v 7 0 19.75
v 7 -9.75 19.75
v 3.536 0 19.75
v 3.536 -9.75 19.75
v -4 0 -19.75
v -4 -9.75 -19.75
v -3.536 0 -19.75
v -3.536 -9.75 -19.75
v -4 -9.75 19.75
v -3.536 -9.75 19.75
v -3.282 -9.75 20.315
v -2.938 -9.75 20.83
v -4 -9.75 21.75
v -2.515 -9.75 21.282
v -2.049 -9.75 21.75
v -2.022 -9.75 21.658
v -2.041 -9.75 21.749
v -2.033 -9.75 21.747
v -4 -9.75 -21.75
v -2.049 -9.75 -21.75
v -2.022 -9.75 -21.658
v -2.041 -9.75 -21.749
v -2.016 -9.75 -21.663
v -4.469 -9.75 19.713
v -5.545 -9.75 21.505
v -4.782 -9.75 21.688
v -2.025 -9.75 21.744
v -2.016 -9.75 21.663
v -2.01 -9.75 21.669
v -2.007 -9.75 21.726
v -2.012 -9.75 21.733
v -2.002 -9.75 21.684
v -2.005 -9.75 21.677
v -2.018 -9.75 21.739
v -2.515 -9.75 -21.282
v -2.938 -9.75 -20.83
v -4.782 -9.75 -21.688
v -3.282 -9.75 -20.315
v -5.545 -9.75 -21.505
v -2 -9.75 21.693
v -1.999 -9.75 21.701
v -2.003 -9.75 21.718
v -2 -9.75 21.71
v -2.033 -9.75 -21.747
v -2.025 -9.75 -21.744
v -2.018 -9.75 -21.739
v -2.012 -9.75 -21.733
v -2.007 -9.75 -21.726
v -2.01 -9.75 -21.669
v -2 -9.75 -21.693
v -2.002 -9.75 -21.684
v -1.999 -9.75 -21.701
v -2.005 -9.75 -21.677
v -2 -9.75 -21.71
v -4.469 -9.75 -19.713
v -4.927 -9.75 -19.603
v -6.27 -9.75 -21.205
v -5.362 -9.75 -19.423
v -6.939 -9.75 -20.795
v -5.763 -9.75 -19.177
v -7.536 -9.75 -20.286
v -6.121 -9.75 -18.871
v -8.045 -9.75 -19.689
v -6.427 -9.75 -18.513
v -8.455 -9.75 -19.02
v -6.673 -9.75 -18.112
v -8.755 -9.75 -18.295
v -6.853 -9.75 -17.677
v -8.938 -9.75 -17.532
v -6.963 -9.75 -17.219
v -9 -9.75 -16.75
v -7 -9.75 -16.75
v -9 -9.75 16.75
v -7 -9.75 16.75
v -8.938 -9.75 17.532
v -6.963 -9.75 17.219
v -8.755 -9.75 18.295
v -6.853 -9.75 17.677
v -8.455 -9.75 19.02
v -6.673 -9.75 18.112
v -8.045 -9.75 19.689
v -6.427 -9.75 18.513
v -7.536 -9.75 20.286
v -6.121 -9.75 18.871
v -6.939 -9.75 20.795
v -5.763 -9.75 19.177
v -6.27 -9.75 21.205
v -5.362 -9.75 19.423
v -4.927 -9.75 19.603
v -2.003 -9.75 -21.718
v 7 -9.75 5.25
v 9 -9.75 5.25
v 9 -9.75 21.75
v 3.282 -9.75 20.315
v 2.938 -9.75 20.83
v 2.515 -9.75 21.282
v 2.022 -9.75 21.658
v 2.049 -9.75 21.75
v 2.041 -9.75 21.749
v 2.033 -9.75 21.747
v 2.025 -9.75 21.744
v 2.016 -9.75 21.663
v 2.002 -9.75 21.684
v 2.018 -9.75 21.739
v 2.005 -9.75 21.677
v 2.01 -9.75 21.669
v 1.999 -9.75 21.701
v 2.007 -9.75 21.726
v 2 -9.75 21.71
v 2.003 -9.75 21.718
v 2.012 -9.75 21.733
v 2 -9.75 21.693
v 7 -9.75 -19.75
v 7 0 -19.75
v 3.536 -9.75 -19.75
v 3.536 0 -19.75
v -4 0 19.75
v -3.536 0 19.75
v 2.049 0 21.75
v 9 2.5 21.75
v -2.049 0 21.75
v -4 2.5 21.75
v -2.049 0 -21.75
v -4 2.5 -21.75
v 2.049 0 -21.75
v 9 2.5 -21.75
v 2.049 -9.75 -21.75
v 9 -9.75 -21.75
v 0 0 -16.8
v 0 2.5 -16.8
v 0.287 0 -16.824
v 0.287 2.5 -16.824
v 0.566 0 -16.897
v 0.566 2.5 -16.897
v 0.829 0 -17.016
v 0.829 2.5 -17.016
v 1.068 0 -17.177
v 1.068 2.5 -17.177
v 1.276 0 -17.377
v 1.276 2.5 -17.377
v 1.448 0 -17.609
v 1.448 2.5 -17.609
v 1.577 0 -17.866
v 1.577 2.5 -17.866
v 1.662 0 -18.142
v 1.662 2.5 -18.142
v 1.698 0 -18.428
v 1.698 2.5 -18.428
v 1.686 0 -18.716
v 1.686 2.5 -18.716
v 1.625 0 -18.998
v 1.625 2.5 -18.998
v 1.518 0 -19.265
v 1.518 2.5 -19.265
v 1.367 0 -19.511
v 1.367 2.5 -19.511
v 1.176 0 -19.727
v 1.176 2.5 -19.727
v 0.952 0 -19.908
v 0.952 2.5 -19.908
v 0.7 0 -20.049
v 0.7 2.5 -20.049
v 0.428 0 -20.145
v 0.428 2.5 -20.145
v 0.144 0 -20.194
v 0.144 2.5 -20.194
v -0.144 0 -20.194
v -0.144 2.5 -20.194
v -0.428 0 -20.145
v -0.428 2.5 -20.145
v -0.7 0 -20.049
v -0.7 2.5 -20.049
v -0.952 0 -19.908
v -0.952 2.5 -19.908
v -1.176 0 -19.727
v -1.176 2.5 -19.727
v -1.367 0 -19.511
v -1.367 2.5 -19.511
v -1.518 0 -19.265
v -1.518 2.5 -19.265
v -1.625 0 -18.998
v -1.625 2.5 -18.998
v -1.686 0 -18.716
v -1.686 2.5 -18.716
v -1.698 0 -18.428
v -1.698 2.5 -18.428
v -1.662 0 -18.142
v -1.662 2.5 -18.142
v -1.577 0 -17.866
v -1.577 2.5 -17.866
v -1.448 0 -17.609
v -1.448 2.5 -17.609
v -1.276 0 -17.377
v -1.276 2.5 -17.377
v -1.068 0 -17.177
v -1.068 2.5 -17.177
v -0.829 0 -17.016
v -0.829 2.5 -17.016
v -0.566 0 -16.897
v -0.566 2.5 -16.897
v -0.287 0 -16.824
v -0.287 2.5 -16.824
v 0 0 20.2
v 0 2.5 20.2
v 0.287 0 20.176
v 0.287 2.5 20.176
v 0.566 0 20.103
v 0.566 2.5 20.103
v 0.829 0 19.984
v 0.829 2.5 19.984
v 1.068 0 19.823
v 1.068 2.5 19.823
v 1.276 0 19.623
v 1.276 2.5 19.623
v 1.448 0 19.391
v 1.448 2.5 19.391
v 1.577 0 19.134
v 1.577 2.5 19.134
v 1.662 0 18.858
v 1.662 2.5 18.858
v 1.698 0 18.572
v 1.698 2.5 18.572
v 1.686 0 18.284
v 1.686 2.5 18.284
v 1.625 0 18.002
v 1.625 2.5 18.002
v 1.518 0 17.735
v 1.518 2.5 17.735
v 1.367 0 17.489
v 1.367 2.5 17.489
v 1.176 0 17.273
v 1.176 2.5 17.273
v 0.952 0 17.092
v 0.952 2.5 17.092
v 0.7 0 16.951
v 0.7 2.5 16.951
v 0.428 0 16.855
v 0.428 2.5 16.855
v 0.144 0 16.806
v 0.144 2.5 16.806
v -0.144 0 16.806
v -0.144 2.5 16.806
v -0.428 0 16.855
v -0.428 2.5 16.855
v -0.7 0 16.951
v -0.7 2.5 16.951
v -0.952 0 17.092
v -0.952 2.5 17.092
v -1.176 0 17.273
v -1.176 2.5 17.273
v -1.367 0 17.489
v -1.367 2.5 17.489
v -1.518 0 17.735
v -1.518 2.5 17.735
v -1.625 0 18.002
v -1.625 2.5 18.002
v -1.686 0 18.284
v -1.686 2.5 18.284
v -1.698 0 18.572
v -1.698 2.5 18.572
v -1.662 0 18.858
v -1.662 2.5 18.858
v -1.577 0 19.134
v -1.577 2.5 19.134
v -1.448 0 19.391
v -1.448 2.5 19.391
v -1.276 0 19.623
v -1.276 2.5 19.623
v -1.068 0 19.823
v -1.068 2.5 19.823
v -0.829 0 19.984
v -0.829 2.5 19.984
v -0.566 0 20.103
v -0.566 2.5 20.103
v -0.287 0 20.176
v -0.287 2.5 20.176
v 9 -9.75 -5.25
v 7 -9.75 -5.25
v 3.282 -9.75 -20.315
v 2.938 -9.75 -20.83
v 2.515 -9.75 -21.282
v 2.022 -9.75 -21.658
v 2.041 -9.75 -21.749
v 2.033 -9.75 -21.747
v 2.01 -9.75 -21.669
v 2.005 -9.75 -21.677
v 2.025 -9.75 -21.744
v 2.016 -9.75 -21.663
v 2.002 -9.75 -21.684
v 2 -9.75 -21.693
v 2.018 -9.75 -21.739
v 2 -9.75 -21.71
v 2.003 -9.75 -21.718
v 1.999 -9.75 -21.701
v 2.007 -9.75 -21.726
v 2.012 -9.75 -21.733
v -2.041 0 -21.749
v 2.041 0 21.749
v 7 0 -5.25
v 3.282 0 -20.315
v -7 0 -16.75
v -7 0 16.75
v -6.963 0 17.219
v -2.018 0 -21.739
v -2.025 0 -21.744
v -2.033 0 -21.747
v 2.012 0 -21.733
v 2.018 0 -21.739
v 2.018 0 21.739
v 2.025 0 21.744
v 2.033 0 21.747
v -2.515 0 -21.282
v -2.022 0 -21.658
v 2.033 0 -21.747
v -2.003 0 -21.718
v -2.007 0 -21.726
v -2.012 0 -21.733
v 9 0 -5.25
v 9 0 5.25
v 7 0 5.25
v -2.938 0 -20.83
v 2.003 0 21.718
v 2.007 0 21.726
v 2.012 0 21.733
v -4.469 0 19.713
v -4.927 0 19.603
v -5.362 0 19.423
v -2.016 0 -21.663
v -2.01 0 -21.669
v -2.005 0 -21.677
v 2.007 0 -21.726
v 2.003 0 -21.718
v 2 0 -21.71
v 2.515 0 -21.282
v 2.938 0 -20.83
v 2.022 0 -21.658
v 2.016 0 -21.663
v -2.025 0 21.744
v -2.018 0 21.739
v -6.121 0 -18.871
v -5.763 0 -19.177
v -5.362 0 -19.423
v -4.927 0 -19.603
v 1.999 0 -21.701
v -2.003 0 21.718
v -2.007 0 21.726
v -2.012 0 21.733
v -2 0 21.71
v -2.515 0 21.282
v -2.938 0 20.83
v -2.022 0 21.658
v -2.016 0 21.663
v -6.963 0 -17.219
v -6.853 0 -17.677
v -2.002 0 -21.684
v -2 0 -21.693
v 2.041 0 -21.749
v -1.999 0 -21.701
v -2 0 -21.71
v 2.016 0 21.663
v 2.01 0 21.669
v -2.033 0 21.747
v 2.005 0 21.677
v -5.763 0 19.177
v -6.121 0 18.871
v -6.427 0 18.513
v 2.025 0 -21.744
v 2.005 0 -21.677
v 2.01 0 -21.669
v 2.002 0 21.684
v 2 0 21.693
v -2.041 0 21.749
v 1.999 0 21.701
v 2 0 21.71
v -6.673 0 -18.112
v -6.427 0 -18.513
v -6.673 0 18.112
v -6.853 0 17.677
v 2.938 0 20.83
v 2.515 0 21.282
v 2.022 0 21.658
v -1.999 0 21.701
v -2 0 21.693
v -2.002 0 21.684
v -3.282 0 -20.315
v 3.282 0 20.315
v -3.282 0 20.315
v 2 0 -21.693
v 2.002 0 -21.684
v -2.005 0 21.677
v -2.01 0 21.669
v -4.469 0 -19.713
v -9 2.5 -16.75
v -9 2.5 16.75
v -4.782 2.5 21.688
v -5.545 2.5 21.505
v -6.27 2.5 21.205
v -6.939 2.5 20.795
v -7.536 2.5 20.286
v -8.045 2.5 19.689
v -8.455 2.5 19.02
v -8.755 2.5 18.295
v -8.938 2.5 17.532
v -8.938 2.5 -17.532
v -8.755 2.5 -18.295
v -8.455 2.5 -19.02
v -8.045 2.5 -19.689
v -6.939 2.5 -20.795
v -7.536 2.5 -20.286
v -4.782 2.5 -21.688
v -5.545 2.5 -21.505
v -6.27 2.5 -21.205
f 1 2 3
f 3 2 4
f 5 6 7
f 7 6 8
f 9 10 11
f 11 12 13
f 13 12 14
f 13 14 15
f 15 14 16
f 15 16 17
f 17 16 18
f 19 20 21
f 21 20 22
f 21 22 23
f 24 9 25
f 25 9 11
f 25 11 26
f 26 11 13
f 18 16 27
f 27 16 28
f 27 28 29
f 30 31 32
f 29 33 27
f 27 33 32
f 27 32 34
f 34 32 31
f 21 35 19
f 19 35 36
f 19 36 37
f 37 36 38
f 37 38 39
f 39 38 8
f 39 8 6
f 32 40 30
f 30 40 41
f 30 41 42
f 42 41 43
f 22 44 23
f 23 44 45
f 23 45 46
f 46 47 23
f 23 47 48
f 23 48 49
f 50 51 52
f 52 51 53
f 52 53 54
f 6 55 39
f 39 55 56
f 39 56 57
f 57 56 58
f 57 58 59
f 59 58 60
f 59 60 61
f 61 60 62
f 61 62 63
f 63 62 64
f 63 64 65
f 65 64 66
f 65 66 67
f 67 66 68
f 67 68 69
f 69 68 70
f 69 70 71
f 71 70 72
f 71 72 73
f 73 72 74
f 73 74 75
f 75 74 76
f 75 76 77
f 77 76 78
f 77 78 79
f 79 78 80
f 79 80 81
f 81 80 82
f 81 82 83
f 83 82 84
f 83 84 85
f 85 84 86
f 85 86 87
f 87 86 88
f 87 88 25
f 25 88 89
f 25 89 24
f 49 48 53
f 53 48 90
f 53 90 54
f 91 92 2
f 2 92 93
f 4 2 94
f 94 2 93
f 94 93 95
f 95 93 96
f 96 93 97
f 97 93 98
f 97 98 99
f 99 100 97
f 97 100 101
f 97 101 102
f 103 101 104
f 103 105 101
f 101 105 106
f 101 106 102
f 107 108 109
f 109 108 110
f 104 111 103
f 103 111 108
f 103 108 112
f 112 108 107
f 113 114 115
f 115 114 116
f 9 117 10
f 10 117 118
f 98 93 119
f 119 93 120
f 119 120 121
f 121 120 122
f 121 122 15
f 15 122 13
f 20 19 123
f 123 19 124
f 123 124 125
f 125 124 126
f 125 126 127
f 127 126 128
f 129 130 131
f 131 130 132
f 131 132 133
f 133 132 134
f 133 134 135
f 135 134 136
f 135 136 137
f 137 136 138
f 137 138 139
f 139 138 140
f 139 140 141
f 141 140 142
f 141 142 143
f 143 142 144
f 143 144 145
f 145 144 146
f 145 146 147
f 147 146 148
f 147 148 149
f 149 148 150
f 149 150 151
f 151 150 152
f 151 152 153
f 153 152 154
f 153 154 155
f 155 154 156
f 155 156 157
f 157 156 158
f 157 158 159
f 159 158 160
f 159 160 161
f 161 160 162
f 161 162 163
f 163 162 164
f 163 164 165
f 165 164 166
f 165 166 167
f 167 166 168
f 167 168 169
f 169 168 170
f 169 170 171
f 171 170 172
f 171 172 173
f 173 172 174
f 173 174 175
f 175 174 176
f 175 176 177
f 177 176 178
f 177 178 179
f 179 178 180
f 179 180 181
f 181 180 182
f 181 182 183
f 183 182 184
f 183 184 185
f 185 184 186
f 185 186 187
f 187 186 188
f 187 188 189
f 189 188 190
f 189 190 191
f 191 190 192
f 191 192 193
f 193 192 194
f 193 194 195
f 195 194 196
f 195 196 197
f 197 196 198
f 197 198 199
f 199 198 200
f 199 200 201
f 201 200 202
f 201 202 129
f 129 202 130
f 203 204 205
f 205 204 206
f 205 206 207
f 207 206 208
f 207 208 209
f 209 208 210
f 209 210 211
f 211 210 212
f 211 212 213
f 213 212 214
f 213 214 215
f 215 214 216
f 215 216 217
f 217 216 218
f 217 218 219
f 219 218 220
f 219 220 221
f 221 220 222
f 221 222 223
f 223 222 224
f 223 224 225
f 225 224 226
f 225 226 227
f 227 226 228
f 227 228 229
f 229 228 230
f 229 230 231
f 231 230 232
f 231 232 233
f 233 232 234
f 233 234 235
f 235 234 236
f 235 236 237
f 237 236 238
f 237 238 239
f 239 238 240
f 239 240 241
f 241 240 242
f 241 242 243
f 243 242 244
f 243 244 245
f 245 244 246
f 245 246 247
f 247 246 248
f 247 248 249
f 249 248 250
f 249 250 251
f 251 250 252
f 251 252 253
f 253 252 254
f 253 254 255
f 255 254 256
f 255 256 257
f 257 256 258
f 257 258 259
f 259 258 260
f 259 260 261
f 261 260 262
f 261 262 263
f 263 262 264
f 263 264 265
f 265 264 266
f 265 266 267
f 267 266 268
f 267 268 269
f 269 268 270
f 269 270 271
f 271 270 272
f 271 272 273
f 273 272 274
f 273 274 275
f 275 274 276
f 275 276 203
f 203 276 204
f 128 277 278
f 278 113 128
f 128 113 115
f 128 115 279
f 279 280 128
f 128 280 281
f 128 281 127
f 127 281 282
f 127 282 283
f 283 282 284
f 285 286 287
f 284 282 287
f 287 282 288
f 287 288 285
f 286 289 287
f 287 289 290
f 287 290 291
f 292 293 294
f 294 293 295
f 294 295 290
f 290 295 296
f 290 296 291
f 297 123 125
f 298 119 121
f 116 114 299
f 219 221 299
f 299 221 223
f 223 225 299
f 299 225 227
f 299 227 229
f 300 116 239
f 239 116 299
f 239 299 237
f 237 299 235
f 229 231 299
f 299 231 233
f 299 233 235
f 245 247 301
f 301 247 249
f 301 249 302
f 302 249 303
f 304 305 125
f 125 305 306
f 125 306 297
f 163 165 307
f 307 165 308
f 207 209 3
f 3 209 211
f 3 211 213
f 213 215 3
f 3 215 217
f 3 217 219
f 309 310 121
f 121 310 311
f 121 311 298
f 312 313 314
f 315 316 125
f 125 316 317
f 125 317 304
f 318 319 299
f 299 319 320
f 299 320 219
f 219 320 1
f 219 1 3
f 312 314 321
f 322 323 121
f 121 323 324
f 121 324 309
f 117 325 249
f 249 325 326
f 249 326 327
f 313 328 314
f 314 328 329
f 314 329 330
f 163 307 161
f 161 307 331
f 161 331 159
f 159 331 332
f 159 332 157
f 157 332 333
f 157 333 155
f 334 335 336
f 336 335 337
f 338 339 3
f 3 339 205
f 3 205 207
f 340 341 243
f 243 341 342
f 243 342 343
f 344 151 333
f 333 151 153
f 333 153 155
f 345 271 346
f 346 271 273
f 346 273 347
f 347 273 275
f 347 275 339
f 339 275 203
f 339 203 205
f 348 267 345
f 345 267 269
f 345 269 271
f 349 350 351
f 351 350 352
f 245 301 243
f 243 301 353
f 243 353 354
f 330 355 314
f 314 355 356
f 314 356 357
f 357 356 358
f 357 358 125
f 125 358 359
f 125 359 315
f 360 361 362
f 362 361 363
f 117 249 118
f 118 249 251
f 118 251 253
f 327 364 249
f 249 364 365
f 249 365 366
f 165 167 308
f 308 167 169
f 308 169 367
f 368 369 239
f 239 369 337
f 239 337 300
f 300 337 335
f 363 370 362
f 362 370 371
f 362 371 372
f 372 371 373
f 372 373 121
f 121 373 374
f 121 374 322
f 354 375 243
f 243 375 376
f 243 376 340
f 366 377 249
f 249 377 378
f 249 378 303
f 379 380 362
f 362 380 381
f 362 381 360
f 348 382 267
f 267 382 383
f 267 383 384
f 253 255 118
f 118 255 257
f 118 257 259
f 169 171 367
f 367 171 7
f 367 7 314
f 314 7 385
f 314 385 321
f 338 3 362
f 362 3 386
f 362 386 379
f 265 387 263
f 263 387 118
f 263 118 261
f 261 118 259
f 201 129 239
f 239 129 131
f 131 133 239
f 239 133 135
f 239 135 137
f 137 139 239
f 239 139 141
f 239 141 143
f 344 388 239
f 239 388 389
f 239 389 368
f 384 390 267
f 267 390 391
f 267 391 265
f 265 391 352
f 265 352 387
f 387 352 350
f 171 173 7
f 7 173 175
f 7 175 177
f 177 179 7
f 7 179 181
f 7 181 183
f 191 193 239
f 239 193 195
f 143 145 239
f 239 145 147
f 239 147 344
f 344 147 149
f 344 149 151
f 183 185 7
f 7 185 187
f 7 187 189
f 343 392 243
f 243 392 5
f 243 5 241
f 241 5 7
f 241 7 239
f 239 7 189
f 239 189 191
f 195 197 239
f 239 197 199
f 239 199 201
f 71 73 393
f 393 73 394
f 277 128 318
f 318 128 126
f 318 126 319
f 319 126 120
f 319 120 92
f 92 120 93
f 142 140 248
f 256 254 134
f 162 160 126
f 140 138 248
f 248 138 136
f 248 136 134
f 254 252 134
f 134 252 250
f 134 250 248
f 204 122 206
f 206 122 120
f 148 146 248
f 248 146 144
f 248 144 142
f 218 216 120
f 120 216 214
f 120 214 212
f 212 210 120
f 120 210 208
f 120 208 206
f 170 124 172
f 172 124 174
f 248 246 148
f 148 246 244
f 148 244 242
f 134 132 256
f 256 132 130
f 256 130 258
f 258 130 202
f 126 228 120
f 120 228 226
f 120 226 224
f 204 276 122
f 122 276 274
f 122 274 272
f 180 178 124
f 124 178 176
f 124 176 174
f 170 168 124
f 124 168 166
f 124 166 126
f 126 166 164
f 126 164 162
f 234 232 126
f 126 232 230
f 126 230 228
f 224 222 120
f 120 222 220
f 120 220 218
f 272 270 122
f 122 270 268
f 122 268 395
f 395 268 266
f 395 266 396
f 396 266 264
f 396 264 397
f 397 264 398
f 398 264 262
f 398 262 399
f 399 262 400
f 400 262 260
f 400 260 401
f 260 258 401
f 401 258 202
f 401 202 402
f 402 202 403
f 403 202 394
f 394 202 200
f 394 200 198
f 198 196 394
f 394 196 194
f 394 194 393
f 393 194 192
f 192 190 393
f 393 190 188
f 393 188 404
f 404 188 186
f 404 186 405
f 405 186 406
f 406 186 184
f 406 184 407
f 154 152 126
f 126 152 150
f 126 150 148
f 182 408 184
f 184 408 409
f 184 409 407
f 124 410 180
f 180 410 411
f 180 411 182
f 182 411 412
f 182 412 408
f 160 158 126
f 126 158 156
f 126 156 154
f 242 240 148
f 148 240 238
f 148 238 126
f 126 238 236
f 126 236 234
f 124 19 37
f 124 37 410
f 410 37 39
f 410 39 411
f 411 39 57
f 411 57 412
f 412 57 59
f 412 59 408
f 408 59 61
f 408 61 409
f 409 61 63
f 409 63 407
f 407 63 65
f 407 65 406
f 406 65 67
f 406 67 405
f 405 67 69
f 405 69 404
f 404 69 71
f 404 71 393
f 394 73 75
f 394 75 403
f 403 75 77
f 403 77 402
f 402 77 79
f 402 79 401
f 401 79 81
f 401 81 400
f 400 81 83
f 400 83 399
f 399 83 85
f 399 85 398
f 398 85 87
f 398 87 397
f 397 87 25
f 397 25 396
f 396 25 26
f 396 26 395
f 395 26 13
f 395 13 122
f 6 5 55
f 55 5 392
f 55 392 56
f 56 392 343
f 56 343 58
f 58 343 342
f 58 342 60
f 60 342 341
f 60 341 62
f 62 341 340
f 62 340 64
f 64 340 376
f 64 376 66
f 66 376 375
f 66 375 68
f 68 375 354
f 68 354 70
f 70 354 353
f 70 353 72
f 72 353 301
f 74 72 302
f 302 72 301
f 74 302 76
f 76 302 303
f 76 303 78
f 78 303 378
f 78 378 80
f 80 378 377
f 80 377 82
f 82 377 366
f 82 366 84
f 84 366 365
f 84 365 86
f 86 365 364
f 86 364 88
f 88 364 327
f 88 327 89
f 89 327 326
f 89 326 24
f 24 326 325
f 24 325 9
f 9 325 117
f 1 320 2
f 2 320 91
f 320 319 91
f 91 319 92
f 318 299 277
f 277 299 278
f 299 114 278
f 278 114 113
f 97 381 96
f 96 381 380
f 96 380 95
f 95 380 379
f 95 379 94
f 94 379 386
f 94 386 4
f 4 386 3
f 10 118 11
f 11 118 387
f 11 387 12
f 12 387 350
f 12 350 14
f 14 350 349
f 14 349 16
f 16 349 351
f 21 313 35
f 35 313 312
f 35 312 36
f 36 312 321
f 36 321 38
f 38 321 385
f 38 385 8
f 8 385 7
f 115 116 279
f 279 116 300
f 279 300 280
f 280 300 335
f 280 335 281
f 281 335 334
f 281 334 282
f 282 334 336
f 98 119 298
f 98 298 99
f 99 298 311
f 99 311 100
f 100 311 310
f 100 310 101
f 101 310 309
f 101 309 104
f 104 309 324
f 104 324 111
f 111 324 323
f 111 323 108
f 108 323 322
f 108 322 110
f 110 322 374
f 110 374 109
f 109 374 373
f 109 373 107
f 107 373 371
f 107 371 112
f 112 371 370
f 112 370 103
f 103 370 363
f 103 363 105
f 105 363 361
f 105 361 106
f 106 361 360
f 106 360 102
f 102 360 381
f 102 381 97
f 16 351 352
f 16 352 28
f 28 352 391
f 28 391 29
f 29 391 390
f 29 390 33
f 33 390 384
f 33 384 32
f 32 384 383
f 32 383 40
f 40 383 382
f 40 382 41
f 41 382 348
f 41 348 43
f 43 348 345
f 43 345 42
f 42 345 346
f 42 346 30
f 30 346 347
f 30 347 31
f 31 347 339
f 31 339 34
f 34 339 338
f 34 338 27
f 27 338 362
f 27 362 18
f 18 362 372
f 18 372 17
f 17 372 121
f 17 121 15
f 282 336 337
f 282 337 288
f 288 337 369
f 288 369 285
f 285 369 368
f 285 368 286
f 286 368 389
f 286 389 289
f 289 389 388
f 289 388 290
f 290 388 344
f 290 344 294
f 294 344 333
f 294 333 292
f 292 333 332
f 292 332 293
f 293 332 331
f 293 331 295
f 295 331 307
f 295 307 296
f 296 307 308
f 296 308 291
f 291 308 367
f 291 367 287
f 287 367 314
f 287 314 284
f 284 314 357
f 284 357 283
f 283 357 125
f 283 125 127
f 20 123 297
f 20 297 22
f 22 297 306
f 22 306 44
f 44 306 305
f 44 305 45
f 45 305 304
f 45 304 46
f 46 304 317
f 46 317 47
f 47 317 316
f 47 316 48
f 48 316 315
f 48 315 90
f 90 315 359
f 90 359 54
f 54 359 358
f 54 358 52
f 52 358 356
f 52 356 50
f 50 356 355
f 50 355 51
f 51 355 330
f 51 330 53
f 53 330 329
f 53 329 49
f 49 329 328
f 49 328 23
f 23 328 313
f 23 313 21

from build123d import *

# Parameters (mm, degrees)
SKETCH1_W            = 18
SKETCH1_H            = 43.5
BOSS_EXTRUDE1_DEPTH  = 2.5
FILLET1_R            = 5
BOSS_EXTRUDE2_DEPTH  = 9.75
SKETCH3_W            = 2
SKETCH3_H            = 14.5
BOSS_EXTRUDE3_DEPTH  = 9.75
M3_CLEARANCE_HOLE1_D = 3.4
SKETCH7_R            = 3.75
CUT_EXTRUDE1_DEPTH   = 26.477931627
FILLET2_R            = 0.05


with BuildPart() as part:
    # Sketch1 → Boss-Extrude1 (new body)
    with BuildSketch(Plane(origin=(0, 0, 0), x_dir=(1, 0, 0), z_dir=(0, 1, 0))):
        Rectangle(SKETCH1_W, SKETCH1_H)
    extrude(amount=BOSS_EXTRUDE1_DEPTH)

    # Fillet1
    fillet1_edges = [part.edges().sort_by_distance(p)[0] for p in [
        (-9, 1.25, -21.75),
        (-9, 1.25, 21.75),
    ]]
    fillet(fillet1_edges, radius=FILLET1_R)

    # Sketch2 → Boss-Extrude2 (add)
    with BuildSketch(Plane.XZ):
        with BuildLine():
            Line((9, -21.75), (-4, -21.75))
            ThreePointArc((-4, -21.75), (-7.535533906, -20.285533906), (-9, -16.75))
            Line((-9, -16.75), (-9, 16.75))
            ThreePointArc((-9, 16.75), (-7.535533906, 20.285533906), (-4, 21.75))
            Line((-4, 21.75), (9, 21.75))
            Line((9, 21.75), (9, 19.75))
            Line((9, 19.75), (-4, 19.75))
            ThreePointArc((-4, 19.75), (-6.121320344, 18.871320344), (-7, 16.75))
            Line((-7, 16.75), (-7, -16.75))
            ThreePointArc((-7, -16.75), (-6.121320344, -18.871320344), (-4, -19.75))
            Line((-4, -19.75), (9, -19.75))
            Line((9, -19.75), (9, -21.75))
        make_face()
    extrude(amount=BOSS_EXTRUDE2_DEPTH)

    # Sketch3 → Boss-Extrude3 (add)
    with BuildSketch(Plane.XZ):
        with Locations((8, 12.5)):
            Rectangle(SKETCH3_W, SKETCH3_H)
        with Locations((8, -12.5)):
            Rectangle(SKETCH3_W, SKETCH3_H)
    extrude(amount=BOSS_EXTRUDE3_DEPTH)

    # M3 Clearance Hole1 (through all)
    with Locations(Plane(origin=(0, 2.5, 0), x_dir=(1, 0, 0), z_dir=(0, 1, 0))):
        with Locations((0, -18.5), (0, 18.5)):
            Hole(M3_CLEARANCE_HOLE1_D / 2)

    # Sketch7 → Cut-Extrude1 (cut, through all)
    with BuildSketch(Plane.XZ):
        with Locations((0, 18.5)):
            Circle(SKETCH7_R)
        with Locations((0, -18.5)):
            Circle(SKETCH7_R)
    extrude(amount=CUT_EXTRUDE1_DEPTH, mode=Mode.SUBTRACT)

    # Fillet2
    fillet2_edges = [part.edges().sort_by_distance(p)[0] for p in [
        (-1.870828693, -4.875, -21.75),
        (1.870828693, -4.875, -21.75),
        (1.870828693, -4.875, 21.75),
        (-1.870828693, -4.875, 21.75),
    ]]
    fillet(fillet2_edges, radius=FILLET2_R)


solid = part.part
